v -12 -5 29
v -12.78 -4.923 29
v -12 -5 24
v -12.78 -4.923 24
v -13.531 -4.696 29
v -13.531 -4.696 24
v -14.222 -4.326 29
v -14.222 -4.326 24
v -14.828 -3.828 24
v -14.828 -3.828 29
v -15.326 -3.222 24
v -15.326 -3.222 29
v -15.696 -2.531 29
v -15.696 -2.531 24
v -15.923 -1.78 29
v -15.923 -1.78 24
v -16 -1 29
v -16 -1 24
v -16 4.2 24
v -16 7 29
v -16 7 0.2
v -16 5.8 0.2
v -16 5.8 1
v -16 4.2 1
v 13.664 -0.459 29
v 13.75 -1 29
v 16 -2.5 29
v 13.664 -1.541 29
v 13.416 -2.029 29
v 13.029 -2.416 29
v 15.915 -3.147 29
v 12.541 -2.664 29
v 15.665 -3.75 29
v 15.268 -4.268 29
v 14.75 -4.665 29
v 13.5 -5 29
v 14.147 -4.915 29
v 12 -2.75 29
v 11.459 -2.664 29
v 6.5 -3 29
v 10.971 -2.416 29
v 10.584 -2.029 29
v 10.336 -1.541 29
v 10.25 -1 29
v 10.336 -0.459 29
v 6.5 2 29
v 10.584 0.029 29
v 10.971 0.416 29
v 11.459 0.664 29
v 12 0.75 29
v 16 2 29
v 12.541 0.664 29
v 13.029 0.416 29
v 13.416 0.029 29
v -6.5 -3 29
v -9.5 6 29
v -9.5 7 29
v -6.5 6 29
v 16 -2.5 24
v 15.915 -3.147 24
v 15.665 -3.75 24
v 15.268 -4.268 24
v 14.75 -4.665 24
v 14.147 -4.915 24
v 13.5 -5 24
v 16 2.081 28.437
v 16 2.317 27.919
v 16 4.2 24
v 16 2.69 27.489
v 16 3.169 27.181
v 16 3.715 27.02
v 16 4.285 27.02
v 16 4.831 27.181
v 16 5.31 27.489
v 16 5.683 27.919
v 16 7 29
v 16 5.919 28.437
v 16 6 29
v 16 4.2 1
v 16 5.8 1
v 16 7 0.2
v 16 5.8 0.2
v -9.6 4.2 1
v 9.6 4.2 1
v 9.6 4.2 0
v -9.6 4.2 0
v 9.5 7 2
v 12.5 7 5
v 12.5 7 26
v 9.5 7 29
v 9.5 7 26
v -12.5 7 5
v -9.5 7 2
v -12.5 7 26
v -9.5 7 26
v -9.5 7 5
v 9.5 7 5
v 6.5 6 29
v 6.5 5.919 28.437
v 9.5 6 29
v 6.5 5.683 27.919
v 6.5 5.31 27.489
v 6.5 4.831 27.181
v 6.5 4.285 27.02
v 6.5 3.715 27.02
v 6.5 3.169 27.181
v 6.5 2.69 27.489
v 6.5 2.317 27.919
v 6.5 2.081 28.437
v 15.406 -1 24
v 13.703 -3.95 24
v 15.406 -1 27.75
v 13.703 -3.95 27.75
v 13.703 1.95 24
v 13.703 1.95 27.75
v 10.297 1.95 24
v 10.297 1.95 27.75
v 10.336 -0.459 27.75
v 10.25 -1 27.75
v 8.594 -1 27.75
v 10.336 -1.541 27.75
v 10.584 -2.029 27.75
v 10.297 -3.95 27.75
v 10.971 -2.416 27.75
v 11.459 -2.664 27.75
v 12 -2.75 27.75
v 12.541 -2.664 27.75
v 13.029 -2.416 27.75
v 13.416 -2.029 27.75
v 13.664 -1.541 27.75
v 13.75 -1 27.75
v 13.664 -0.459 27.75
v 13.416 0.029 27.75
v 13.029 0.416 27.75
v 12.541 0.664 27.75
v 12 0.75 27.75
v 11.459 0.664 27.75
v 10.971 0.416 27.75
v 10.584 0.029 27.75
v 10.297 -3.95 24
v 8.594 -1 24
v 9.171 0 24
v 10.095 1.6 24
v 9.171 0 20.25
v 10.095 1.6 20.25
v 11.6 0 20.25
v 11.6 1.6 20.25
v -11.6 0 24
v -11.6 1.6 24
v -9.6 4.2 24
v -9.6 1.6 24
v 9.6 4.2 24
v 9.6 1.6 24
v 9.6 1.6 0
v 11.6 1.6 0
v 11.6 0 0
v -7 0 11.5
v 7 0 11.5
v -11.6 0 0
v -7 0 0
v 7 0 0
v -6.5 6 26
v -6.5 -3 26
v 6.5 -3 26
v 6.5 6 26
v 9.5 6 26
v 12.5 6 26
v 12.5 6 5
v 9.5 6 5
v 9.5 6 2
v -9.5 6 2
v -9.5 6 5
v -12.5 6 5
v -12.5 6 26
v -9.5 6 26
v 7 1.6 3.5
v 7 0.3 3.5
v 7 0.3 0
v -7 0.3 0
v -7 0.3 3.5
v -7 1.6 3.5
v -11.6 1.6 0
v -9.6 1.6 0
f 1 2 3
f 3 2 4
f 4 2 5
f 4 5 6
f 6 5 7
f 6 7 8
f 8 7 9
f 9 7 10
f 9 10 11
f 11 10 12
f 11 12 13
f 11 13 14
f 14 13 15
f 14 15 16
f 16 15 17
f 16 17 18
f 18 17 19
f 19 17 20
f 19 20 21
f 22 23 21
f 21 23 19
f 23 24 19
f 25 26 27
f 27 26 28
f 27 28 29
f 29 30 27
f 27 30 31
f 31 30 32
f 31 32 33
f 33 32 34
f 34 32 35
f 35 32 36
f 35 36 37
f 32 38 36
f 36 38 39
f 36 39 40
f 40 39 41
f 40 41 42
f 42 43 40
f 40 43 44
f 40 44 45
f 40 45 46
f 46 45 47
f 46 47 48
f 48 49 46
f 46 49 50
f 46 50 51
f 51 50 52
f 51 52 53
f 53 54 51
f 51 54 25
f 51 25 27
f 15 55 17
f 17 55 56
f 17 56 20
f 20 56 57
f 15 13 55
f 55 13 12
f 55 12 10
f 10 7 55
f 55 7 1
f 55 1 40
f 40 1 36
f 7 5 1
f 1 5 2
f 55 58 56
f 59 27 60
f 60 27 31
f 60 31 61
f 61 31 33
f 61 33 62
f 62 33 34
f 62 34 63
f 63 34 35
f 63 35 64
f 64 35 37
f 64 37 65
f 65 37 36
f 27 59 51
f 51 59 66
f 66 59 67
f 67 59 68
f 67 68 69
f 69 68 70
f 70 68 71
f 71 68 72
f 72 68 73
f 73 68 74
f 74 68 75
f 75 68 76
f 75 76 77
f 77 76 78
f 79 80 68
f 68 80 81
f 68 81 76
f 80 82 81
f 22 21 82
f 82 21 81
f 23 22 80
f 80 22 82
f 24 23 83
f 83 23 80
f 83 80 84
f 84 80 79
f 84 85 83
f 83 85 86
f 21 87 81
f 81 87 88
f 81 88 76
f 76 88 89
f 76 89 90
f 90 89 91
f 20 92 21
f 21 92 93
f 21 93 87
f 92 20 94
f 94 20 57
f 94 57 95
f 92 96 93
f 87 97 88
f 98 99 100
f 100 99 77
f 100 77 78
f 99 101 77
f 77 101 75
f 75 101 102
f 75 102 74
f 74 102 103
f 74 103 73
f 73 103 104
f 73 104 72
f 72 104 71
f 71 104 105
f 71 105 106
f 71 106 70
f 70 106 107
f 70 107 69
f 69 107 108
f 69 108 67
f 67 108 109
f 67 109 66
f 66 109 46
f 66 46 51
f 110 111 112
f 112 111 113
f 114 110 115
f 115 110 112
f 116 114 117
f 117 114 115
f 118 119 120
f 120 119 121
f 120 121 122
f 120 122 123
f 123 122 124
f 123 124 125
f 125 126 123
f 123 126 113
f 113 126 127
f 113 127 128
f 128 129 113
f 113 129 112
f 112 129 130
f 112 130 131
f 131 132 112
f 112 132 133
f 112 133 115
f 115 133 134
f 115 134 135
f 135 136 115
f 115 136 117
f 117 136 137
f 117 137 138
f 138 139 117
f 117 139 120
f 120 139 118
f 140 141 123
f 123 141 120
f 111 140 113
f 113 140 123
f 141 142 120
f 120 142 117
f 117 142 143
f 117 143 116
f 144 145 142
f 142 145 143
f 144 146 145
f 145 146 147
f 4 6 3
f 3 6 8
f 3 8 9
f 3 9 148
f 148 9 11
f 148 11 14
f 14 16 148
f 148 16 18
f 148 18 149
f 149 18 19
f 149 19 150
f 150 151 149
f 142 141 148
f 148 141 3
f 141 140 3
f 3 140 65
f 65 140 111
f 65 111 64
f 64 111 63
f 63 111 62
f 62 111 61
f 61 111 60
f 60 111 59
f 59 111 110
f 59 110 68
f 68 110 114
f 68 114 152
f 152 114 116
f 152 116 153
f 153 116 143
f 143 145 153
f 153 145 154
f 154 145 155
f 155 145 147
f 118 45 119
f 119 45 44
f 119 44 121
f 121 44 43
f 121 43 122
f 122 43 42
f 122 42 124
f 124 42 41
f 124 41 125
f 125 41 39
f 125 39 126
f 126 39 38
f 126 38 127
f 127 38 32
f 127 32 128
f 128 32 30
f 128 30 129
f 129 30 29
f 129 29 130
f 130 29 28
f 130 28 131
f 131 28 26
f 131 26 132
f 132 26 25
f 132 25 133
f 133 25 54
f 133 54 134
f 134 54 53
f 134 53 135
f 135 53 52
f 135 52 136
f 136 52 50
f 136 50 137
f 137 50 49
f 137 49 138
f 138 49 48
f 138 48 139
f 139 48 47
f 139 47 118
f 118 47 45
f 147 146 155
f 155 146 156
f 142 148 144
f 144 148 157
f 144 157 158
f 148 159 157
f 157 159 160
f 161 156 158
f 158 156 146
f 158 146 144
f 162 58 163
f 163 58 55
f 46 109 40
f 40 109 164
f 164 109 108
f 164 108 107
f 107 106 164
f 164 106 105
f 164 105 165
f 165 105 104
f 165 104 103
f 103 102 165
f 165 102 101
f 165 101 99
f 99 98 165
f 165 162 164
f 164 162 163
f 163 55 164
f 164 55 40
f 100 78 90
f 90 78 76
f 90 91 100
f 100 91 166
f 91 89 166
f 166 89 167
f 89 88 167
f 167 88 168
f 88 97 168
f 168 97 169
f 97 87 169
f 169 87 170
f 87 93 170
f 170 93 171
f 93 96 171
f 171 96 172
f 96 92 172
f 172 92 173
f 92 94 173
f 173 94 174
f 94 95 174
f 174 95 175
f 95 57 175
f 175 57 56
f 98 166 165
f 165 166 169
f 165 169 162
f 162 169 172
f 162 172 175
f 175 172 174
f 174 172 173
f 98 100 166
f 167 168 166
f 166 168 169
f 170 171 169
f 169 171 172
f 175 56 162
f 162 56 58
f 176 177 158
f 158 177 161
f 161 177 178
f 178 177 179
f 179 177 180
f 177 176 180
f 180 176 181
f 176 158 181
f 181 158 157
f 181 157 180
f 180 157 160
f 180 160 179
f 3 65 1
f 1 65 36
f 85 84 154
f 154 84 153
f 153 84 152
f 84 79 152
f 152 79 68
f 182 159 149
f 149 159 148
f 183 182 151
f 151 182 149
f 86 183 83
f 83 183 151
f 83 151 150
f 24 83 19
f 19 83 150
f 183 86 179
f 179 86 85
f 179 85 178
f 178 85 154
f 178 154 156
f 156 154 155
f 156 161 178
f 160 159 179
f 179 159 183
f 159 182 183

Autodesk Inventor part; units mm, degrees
ref_plane "YZ Plane" through (0, 0, 0) normal (1, 0, 0) x (0, 1, 0)
ref_plane "XZ Plane" through (0, 0, 0) normal (0, 1, 0) x (-1, 0, 0)
ref_plane "XY Plane" through (0, 0, 0) normal (0, 0, 1) x (1, 0, 0)
sketch "Skizze1" plane through (0, 0, 0) normal (0, 0, 1) x (1, 0, 0)
  line L0 (0, 0) -> (-11.6, 0)
  line L1 (-11.6, 0) -> (-11.6, 1.6)
  line L2 (-11.6, 1.6) -> (-9.6, 1.6)
  line L3 (-9.6, 1.6) -> (-9.6, 4.2)
  line L4 (-9.6, 4.2) -> (-16, 4.2)
  line L5 (-16, 4.2) -> (-16, 7)
  line L6 (-16, 7) -> (0, 7)
  line L7 (0, 7) -> (0, 0)
  dimension "d0" = 9.6
  dimension "d1" = 11.6
  dimension "d2" = 1.6
  dimension "d3" = 4.2
  dimension "d4" = 7
  dimension "d5" = 16
extrude "Extrusion1" add sketch "Skizze1" along normal blind 24
mirror "Spiegeln1" about plane through (0, 0, 0) normal (1, 0, 0) of "Extrusion1"
sketch "Skizze2" plane through (0, 0, 24) normal (0, 0, 1) x (1, 0, 0)
  line L0 (-16, 7) -> (-16, 4.2) projected
  line L1 (-16, 7) -> (16, 7)
  line L2 (16, 7) -> (16, -5)
  line L3 (16, -5) -> (-16, -5)
  line L4 (-16, -5) -> (-16, 7)
  line L5 (16, 7) -> (16, 4.2) projected
  point P0 (0, 0)
  dimension "d8" = 12
extrude "Extrusion2" add sketch "Skizze2" along normal blind 5
sketch "Skizze3" plane through (0, 0, 0) normal (1, 0, 0) x (0, 1, 0)
  line L0 (0, 0) -> (0, 24) projected
  line L1 (0.3, 3.5) -> (1.6, 3.5)
  line L2 (1.6, 3.5) -> (0, 11.5)
  line L3 (0, 11.5) -> (0, 4.0745)
  line L4 (1.6, 0) -> (0, 0) projected
  line L5 (0.3, 3.5) -> (0.3, 0)
  line L6 (0, 0) -> (0, 4.0745)
  line L7 (-5, 24) -> (4.2, 24) projected
  point P0 (0, 11.5)
  dimension "d12" = 8
  dimension "d13" = 1.7
  dimension "d14" = 0.3
  dimension "d20" = 20.5
  dimension "d65" = 1.3
extrude "Extrusion3" cut sketch "Skizze3" against normal mid plane 14
sketch "Skizze4" plane through (-16, 7, 0) normal (0, 1, 0) x (1, 0, 0)
  line L0 (3.5, -2) -> (28.5, -2)
  line L1 (28.5, -2) -> (28.5, -29)
  line L2 (28.5, -29) -> (3.5, -29)
  line L3 (3.5, -29) -> (3.5, -2)
  line L4 (16, 0) -> (16, 8.5337)
  line L5 (32, 0) -> (0, 0) projected
  line L6 (9.5, -26) -> (22.5, -26)
  line L7 (22.5, -26) -> (22.5, -29)
  line L8 (22.5, -29) -> (9.5, -29)
  line L9 (9.5, -29) -> (9.5, -26)
  line L10 (3.5, -29) -> (6.5, -29)
  line L11 (6.5, -29) -> (6.5, -26)
  line L12 (6.5, -26) -> (3.5, -26)
  line L13 (3.5, -26) -> (3.5, -29)
  line L14 (3.5, -2) -> (6.5, -2)
  line L15 (6.5, -2) -> (6.5, -5)
  line L16 (6.5, -5) -> (3.5, -5)
  line L17 (3.5, -5) -> (3.5, -2)
  line L18 (28.5, -29) -> (25.5, -29)
  line L19 (25.5, -29) -> (25.5, -26)
  line L20 (25.5, -26) -> (28.5, -26)
  line L21 (28.5, -26) -> (28.5, -29)
  line L22 (28.5, -2) -> (25.5, -2)
  line L23 (25.5, -2) -> (25.5, -5)
  line L24 (25.5, -5) -> (28.5, -5)
  line L25 (28.5, -5) -> (28.5, -2)
  point P0 (3.5, -26)
  dimension "d17" = 25
  dimension "d18" = 27
  dimension "d19" = 2
  dimension "d21" = 3
  dimension "d22" = 13
  dimension "d23" = 24
  dimension "d24" = 3
  dimension "d25" = 3
  dimension "d26" = 3
  dimension "d27" = 3
  dimension "d28" = 3
  dimension "d29" = 3
  dimension "d30" = 3
  dimension "d31" = 3
extrude "Extrusion4" cut sketch "Skizze4" against normal blind 1 contours L0 L23 L24 L1 L20 L19 L2 L7 L6 L9 L11 L12 L3 L16 L15
extrude "Extrusion5" cut sketch "Skizze4" against normal blind 10 contours L9 L6 L7 L2
sketch "Skizze5" plane through (0, 0, 29) normal (0, 0, 1) x (1, 0, 0)
  circle A0 centre (12, -1) radius 1.75
  line L0 (-16, -5) -> (16, -5) projected
  line L1 (16, -5) -> (16, 7) projected
  point P0 (0, 0)
  dimension "d36" = 3.5
  dimension "d37" = 4
  dimension "d38" = 4
extrude "Extrusion6" cut sketch "Skizze5" against normal blind 6.75
sketch "Skizze6" plane through (0, 0, 24) normal (0, 0, -1) x (-1, 0, 0)
  arc A0 (-11.6, 0.7037) -> (-10.5639, 0) centre (-12, -1) ccw projected
  line L0 (-10.2968, -3.95) -> (-13.7032, -3.95)
  line L1 (-13.7032, -3.95) -> (-15.4064, -1)
  line L2 (-15.4064, -1) -> (-13.7032, 1.95)
  line L3 (-13.7032, 1.95) -> (-10.2968, 1.95)
  line L4 (-10.2968, 1.95) -> (-8.5936, -1)
  line L5 (-8.5936, -1) -> (-10.2968, -3.95)
  point P0 (0, 0)
  dimension "d42" = 5.9
extrude "Extrusion7" cut sketch "Skizze6" along normal mid plane 7.5
sketch "Skizze7" plane through (16, 4.2, 0) normal (1, 0, 0) x (0, 0, -1)
  line L0 (-29, 1.8) -> (-29, -7.2) projected
  circle A0 centre (-29, -0.2) radius 2
  line L1 (0, 2.8) -> (-29, 2.8) projected
  point P0 (0, -4.2)
  point P1 (-29, -2.2)
  dimension "d45" = 4
  dimension "d46" = 3
extrude "Extrusion8" cut sketch "Skizze7" against normal blind 10 contours A0 L0 picked at (-28.3333, -0.2)
sketch "Skizze9" plane through (16, 4.2, 0) normal (1, 0, 0) x (0, 0, -1)
  line L0 (0, 0) -> (-24, 0) projected
  line L1 (0, 0) -> (-1, 0)
  line L2 (-1, 0) -> (-1, 1.6)
  line L3 (-1, 1.6) -> (0, 1.6)
  line L4 (0, 1.6) -> (0, 0)
  line L5 (0, 2.8) -> (-29, 2.8) projected
  line L6 (0, 2.8) -> (0, 0) projected
  line L7 (0, 2.8) -> (-0.2, 2.8)
  line L8 (-0.2, 2.8) -> (-0.2, 1.6)
  line L9 (-0.2, 1.6) -> (0, 1.6)
  line L10 (0, 1.6) -> (0, 2.8)
  point P0 (0, -4.2)
  dimension "d60" = 1
  dimension "d61" = 1.2
  dimension "d62" = 0.2
extrude "Extrusion10" cut sketch "Skizze9" against normal up to surface (32 mm away)
fillet "Rundung1" radius 2.5 1 edges at (16, -5, 26.5)
fillet "Rundung2" radius 4 1 edges at (-16, -5, 26.5)
equation "\"d38\" = d37"
properties part number "DisplayClipLower"
